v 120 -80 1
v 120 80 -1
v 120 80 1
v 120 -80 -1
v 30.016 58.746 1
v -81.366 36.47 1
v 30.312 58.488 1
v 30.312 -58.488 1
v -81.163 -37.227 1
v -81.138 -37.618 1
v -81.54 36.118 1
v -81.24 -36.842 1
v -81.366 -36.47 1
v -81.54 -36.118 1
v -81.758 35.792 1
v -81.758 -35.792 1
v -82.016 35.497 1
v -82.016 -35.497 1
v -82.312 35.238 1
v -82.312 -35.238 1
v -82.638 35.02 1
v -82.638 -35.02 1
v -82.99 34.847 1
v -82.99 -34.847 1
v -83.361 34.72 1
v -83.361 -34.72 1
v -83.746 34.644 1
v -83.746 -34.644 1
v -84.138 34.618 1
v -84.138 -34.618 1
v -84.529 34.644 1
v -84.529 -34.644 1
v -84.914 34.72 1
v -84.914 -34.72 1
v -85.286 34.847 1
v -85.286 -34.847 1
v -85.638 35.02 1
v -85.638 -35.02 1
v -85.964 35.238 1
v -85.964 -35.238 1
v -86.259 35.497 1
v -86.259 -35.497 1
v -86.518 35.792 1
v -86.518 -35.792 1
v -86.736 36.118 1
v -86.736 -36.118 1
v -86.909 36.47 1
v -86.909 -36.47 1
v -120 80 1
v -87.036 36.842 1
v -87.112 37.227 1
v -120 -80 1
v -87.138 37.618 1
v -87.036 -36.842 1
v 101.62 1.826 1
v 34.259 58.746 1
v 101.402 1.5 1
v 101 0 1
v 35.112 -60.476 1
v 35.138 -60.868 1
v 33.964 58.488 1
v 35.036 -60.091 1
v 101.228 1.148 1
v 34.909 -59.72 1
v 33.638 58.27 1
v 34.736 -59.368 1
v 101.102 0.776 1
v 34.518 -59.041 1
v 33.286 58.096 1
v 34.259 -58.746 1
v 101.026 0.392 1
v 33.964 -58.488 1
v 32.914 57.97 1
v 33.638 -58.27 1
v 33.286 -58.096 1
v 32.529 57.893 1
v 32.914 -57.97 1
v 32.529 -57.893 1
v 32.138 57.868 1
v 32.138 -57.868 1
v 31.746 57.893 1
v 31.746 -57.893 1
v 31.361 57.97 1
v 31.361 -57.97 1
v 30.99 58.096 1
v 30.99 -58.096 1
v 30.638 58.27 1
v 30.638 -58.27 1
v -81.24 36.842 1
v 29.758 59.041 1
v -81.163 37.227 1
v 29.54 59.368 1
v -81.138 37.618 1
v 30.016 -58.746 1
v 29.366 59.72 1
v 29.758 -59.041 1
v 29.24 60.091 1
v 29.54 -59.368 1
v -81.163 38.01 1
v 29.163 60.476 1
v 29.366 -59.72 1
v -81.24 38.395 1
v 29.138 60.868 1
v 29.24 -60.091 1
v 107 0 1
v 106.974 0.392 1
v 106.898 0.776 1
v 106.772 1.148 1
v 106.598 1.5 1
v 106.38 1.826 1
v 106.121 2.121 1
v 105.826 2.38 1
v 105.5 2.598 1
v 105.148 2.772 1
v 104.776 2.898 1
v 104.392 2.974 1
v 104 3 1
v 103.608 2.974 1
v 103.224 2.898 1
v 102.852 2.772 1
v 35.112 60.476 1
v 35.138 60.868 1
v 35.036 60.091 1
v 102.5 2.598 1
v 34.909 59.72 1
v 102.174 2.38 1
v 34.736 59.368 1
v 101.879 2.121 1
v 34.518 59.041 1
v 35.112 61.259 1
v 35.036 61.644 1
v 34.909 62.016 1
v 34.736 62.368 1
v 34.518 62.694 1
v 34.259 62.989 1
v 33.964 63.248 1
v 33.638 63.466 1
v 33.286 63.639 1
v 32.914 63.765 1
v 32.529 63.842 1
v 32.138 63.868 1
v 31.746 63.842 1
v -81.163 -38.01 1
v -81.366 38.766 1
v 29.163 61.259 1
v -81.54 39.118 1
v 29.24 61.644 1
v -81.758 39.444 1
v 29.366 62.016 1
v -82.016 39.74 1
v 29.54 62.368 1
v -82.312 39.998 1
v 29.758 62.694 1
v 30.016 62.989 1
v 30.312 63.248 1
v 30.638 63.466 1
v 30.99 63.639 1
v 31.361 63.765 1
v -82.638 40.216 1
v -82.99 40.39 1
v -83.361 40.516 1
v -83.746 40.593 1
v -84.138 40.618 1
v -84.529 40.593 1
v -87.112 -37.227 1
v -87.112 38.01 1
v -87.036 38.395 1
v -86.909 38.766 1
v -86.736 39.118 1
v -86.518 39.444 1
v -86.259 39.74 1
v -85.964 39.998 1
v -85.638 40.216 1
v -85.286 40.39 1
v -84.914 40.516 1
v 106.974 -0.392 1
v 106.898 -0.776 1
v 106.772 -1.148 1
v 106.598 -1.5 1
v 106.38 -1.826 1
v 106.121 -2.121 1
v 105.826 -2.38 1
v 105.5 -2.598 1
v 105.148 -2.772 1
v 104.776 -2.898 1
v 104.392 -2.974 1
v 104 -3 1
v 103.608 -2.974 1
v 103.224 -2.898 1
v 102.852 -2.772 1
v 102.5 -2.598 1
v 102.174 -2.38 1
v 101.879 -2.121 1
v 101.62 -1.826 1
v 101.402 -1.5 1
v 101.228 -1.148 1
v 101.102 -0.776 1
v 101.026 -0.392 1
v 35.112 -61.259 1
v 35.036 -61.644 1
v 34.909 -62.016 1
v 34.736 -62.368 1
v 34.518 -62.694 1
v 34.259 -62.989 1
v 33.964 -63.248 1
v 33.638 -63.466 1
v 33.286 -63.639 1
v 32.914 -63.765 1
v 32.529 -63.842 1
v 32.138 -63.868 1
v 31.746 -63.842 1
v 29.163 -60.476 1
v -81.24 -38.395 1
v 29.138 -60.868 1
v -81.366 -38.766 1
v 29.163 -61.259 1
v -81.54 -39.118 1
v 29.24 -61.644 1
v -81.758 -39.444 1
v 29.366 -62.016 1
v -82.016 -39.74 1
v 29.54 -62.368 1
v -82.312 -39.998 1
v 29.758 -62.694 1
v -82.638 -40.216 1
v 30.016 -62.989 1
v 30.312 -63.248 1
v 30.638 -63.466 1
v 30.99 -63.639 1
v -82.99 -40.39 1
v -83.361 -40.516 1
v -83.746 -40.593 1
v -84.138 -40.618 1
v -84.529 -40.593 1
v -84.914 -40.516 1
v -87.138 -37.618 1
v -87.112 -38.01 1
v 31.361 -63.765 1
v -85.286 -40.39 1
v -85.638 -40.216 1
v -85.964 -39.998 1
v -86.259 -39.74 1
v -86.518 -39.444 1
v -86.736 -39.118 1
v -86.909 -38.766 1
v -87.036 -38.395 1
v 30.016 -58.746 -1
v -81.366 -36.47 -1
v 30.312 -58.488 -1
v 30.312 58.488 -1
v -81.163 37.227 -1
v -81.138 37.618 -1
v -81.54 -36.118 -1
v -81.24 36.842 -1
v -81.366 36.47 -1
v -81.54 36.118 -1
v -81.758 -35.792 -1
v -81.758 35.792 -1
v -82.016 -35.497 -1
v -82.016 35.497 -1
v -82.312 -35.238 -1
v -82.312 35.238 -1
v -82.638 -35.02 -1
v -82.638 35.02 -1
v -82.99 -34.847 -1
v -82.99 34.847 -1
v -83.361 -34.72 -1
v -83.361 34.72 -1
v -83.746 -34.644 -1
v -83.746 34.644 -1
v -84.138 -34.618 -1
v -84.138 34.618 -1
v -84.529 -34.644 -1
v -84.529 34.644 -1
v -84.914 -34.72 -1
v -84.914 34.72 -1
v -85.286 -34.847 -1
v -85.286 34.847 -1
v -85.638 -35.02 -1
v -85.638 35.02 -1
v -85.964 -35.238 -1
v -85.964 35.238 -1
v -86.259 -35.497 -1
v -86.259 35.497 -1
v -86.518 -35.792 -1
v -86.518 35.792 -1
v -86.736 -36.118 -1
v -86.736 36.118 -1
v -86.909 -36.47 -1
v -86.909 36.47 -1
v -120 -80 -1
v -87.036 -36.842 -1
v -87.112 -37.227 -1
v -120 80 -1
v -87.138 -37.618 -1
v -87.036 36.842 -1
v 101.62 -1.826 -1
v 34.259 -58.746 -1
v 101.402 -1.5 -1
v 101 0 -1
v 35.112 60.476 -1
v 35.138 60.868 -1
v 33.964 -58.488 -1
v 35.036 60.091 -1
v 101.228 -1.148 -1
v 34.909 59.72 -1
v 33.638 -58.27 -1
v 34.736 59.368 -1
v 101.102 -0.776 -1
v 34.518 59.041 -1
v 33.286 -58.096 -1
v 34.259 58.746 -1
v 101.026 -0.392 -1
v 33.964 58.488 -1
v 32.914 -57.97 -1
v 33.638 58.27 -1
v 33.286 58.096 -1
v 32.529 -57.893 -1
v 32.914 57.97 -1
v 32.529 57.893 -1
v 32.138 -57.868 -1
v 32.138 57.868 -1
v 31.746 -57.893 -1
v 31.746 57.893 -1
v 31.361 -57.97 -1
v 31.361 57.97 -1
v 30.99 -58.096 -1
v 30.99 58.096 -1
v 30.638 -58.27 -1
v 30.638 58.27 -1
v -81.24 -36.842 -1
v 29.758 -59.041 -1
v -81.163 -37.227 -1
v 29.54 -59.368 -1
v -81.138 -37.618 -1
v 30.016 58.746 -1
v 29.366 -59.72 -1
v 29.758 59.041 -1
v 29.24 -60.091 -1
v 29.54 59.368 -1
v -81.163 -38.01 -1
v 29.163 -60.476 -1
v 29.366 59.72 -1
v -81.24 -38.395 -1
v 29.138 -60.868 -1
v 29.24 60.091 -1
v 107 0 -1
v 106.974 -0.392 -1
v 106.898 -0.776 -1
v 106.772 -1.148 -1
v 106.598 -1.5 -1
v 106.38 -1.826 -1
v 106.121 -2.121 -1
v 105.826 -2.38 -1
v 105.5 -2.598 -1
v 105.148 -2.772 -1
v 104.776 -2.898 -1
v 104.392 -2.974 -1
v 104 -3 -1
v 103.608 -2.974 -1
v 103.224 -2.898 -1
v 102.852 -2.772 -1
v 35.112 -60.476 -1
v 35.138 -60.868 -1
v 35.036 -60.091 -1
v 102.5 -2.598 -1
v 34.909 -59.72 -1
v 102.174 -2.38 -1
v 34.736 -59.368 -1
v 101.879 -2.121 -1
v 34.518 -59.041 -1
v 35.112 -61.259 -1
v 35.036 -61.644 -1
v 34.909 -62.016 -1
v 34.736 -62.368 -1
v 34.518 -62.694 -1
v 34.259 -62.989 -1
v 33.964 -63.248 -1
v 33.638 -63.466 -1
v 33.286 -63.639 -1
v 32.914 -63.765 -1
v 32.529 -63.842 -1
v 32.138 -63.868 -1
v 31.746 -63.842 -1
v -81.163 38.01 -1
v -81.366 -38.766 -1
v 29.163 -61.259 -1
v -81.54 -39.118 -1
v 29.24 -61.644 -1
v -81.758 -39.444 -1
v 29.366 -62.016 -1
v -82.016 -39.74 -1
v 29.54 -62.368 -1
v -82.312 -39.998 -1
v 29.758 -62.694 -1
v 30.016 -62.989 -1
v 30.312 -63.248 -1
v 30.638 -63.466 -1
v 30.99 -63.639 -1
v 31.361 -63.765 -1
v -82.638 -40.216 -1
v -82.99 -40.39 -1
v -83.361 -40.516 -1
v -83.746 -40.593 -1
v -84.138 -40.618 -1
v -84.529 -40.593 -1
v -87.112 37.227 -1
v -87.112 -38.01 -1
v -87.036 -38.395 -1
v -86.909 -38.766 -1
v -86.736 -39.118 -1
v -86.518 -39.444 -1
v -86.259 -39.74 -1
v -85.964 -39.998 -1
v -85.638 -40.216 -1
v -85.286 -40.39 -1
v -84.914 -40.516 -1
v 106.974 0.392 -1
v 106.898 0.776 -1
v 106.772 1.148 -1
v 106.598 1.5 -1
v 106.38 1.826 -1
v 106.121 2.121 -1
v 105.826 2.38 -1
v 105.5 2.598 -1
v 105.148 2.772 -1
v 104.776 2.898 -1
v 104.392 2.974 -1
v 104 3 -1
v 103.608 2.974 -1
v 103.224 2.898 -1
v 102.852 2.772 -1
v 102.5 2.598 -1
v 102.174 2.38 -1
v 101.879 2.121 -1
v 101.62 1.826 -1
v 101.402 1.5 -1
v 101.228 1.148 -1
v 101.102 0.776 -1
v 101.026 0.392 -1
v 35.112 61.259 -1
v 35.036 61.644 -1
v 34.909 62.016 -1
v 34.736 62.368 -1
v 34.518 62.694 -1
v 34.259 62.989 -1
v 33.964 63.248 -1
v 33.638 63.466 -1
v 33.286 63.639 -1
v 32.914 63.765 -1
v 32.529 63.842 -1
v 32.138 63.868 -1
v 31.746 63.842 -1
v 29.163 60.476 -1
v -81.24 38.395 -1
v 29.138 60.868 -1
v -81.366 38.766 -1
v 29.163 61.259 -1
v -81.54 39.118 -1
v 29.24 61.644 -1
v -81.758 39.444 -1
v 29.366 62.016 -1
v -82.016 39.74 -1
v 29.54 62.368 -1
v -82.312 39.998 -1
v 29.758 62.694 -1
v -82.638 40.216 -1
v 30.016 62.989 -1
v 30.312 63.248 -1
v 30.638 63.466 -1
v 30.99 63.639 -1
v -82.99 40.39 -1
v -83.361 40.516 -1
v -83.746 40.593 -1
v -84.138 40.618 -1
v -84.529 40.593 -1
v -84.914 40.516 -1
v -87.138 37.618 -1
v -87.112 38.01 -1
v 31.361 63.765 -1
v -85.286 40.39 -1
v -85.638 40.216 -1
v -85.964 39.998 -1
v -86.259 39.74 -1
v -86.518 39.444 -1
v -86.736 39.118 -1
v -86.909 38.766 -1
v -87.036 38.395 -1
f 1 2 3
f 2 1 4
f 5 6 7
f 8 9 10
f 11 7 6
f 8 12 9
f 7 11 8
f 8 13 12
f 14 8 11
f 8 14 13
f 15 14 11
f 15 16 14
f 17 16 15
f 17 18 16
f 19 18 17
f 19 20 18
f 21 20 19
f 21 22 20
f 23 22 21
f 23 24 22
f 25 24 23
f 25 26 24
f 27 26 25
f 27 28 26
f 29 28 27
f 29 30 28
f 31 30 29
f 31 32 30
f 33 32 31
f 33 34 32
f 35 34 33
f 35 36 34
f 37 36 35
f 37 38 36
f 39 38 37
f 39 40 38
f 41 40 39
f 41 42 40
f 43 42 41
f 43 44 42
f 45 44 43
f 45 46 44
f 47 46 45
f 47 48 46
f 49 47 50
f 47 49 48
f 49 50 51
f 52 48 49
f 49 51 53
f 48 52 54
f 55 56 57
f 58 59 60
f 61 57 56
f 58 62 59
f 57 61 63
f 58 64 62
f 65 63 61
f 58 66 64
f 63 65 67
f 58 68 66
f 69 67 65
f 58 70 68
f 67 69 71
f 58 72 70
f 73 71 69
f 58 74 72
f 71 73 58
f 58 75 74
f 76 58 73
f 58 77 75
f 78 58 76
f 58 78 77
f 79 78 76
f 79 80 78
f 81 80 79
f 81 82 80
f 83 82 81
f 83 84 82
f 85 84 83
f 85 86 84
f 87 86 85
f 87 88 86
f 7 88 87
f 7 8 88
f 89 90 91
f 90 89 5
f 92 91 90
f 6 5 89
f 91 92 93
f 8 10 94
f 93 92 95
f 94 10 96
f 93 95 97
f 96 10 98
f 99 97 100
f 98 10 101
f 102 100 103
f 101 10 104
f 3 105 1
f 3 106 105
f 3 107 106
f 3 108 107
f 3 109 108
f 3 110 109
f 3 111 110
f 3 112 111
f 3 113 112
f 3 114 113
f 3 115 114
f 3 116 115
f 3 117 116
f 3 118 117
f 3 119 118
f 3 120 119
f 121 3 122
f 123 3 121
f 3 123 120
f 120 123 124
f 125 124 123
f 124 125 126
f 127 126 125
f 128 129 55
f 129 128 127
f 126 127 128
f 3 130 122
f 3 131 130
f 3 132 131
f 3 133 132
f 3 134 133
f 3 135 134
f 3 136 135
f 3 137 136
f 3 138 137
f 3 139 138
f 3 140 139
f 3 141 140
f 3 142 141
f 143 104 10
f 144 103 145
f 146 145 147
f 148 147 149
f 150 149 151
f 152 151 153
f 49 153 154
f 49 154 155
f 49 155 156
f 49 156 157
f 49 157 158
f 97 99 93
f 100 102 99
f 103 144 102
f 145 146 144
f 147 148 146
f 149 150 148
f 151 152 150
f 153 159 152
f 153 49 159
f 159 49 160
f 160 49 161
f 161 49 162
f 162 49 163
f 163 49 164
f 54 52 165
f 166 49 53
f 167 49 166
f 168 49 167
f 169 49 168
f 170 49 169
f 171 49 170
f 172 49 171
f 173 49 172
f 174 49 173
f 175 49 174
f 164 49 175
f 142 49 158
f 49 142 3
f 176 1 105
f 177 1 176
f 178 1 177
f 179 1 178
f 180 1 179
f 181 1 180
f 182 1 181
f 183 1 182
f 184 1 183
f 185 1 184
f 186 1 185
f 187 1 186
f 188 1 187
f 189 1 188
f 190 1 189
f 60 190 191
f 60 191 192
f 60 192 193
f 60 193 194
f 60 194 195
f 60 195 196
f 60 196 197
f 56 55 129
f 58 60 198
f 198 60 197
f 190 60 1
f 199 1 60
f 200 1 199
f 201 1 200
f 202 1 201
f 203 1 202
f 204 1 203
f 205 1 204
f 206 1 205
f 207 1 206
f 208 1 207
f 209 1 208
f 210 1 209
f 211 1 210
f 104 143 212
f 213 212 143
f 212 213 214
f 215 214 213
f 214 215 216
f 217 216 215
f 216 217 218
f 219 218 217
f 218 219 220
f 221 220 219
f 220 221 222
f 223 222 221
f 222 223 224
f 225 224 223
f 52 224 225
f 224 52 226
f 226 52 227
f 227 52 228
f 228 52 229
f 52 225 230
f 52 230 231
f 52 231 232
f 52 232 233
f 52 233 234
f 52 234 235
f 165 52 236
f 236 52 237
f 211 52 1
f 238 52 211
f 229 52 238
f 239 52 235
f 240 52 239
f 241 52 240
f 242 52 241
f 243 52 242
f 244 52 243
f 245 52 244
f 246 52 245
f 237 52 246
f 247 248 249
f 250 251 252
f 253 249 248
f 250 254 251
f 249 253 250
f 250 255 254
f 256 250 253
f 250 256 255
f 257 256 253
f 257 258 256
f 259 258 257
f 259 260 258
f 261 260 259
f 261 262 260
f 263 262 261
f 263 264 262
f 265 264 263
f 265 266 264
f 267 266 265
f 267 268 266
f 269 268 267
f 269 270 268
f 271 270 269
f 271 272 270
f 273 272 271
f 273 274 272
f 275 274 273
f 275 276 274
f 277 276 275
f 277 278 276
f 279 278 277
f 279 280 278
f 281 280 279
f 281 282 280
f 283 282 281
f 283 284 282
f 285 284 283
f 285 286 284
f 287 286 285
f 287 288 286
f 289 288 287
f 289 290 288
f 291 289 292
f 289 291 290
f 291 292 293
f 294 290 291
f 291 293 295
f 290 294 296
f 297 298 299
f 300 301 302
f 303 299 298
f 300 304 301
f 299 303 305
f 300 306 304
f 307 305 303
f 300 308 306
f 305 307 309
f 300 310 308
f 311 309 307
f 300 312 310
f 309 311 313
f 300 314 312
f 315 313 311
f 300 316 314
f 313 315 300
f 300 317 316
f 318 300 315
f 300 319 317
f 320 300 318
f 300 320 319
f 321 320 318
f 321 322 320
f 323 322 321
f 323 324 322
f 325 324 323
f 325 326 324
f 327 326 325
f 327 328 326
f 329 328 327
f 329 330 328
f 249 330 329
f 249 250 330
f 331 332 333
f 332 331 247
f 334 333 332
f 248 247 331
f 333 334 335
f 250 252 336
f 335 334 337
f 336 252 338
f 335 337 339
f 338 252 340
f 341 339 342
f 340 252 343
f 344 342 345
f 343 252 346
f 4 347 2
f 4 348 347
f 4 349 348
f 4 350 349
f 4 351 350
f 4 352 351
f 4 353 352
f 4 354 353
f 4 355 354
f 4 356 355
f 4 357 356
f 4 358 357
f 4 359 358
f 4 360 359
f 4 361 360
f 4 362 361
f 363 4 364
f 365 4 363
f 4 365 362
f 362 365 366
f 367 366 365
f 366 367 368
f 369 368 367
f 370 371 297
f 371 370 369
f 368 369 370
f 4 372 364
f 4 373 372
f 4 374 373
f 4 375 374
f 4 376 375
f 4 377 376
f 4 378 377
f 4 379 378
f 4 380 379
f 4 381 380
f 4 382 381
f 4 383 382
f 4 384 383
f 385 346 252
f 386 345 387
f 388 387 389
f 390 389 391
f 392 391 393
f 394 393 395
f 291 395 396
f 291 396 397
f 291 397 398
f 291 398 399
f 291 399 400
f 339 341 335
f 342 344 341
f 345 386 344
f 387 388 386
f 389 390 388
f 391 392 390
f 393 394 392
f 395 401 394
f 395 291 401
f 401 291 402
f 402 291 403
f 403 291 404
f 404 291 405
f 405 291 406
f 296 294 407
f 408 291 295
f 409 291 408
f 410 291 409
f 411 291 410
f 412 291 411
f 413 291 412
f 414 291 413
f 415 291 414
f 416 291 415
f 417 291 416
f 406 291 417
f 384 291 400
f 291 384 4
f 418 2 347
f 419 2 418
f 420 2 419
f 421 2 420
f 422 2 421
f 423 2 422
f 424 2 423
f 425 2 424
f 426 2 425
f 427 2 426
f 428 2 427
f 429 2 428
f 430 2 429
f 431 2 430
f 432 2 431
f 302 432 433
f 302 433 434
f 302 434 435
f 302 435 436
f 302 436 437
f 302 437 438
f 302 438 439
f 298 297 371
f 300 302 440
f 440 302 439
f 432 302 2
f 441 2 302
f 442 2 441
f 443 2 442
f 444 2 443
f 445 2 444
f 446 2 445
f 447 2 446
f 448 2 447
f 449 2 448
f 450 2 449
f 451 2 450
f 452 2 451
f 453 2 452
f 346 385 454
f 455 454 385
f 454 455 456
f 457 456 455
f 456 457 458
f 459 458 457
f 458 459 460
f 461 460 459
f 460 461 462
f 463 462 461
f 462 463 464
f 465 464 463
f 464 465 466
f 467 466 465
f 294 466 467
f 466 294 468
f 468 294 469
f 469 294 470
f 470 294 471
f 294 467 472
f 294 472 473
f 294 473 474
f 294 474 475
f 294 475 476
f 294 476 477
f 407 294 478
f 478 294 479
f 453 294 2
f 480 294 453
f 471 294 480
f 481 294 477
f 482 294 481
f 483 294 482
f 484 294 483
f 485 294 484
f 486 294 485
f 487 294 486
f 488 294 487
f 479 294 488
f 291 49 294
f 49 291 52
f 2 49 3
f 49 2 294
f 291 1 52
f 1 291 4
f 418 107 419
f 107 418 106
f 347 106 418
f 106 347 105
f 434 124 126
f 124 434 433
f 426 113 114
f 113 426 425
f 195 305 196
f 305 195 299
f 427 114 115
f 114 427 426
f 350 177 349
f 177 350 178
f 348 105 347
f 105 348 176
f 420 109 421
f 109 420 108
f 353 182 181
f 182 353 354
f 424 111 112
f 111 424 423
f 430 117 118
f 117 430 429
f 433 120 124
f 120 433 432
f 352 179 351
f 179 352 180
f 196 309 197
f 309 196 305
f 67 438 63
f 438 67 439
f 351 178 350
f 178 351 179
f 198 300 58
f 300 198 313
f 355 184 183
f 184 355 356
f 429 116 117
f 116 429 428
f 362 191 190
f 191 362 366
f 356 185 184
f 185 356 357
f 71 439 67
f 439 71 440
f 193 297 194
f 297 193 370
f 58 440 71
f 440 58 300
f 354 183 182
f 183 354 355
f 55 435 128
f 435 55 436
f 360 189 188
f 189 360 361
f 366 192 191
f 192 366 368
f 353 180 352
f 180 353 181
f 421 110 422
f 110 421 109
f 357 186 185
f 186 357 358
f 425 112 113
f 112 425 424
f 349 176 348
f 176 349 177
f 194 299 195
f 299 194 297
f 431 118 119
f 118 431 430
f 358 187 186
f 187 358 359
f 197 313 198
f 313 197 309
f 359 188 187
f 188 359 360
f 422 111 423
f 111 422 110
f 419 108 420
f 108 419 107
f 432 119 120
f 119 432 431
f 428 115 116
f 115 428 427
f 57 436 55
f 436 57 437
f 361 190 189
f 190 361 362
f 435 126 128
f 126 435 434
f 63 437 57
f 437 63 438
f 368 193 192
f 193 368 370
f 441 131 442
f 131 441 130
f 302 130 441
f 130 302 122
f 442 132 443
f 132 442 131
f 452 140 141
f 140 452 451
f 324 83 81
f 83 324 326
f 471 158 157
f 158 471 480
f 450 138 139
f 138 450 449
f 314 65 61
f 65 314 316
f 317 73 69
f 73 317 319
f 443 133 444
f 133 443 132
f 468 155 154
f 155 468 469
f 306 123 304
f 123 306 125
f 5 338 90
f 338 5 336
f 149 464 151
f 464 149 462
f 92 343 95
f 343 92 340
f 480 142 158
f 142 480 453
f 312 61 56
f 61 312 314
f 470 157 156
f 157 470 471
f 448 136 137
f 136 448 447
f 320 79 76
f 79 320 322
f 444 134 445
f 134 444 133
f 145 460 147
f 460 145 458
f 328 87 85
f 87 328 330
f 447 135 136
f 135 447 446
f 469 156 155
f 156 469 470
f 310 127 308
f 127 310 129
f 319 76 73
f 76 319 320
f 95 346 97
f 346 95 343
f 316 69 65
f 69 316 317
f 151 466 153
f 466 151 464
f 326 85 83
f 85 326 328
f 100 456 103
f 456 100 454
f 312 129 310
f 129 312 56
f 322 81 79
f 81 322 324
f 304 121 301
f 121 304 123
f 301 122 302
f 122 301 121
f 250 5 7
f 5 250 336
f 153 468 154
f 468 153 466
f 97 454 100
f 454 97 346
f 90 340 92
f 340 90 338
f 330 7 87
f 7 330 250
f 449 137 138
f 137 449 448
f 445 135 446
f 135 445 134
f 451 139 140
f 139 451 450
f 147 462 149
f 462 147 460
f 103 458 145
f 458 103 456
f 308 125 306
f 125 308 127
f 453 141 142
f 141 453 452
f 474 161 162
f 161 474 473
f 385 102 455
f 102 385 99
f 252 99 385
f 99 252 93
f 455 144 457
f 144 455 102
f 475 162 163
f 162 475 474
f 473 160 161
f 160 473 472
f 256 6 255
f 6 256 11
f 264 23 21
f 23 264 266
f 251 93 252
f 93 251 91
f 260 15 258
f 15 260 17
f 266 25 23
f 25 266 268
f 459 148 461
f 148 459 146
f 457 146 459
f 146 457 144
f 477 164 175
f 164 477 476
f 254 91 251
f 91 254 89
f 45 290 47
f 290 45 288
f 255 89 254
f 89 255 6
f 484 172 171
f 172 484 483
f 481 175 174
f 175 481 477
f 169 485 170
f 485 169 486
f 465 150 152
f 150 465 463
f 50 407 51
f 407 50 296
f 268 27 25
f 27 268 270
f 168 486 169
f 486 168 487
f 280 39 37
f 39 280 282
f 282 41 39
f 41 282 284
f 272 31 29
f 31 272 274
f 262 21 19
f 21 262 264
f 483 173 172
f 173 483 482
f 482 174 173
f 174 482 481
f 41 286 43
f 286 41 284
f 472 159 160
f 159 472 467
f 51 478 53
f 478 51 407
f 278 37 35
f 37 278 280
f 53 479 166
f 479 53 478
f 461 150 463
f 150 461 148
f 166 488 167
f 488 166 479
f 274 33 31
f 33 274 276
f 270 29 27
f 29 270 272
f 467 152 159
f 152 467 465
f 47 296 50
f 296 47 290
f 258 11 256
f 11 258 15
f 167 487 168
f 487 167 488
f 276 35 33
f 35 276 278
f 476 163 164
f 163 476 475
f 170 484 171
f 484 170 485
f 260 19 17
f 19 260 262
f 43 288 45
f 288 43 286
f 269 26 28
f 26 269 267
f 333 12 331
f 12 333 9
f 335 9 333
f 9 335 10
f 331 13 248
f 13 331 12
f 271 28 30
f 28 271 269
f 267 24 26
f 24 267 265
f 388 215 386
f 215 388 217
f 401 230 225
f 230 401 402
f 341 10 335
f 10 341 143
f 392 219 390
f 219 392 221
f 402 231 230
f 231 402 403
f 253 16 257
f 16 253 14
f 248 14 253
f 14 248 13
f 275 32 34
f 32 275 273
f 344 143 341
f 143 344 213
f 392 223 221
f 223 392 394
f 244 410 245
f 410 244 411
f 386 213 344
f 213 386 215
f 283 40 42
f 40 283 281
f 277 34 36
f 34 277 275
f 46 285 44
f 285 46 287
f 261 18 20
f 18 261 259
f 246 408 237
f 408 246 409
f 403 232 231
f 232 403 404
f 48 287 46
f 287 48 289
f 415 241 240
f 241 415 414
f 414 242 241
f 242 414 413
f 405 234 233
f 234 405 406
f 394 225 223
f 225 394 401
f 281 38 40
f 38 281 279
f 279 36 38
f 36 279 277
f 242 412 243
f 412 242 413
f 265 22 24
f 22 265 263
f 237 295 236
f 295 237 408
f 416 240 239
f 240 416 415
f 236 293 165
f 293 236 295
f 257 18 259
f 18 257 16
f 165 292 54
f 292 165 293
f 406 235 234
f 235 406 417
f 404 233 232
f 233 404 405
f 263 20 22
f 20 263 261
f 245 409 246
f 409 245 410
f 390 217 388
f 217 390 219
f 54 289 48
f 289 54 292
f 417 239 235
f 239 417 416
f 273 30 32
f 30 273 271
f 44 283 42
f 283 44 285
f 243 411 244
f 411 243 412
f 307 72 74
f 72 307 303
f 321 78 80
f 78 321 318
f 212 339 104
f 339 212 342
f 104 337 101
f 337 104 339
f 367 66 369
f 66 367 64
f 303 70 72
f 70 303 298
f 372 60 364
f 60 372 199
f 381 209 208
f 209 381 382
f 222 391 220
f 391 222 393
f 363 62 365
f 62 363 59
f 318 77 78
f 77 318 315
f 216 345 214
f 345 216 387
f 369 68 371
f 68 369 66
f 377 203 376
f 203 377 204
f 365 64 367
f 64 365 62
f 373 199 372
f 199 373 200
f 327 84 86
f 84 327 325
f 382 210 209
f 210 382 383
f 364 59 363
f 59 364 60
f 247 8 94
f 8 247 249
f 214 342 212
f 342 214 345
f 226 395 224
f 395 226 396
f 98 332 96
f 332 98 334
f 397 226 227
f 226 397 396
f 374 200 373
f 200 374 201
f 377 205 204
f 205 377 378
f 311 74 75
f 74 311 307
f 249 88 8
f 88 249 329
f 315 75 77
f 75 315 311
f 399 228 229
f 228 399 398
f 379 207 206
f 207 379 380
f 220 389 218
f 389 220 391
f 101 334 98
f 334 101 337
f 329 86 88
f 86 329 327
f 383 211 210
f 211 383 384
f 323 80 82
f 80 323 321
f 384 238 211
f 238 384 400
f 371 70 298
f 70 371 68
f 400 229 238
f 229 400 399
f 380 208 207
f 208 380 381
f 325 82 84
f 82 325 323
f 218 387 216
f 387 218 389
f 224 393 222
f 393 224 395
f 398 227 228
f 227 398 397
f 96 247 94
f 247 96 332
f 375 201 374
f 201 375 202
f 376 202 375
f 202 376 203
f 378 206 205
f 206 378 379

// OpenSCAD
// ========================================
// a 24 x 16 x 0.2 cm plate with five 0.6 cm holes
// NeuroCAD canonical IR; dimensions are millimetres
// ========================================
$fn = 48;

difference() {
  cube(size=[240, 160, 2], center=true);
  translate([104, 0, 0]) {
    cylinder(r=3, h=4, center=true);
  }
  translate([32.1377674149945, 60.8676170428898, 0]) {
    cylinder(r=3, h=4, center=true);
  }
  translate([-84.1377674149945, 37.6182561467183, 0]) {
    cylinder(r=3, h=4, center=true);
  }
  translate([-84.1377674149945, -37.6182561467183, 0]) {
    cylinder(r=3, h=4, center=true);
  }
  translate([32.1377674149945, -60.8676170428898, 0]) {
    cylinder(r=3, h=4, center=true);
  }
}
